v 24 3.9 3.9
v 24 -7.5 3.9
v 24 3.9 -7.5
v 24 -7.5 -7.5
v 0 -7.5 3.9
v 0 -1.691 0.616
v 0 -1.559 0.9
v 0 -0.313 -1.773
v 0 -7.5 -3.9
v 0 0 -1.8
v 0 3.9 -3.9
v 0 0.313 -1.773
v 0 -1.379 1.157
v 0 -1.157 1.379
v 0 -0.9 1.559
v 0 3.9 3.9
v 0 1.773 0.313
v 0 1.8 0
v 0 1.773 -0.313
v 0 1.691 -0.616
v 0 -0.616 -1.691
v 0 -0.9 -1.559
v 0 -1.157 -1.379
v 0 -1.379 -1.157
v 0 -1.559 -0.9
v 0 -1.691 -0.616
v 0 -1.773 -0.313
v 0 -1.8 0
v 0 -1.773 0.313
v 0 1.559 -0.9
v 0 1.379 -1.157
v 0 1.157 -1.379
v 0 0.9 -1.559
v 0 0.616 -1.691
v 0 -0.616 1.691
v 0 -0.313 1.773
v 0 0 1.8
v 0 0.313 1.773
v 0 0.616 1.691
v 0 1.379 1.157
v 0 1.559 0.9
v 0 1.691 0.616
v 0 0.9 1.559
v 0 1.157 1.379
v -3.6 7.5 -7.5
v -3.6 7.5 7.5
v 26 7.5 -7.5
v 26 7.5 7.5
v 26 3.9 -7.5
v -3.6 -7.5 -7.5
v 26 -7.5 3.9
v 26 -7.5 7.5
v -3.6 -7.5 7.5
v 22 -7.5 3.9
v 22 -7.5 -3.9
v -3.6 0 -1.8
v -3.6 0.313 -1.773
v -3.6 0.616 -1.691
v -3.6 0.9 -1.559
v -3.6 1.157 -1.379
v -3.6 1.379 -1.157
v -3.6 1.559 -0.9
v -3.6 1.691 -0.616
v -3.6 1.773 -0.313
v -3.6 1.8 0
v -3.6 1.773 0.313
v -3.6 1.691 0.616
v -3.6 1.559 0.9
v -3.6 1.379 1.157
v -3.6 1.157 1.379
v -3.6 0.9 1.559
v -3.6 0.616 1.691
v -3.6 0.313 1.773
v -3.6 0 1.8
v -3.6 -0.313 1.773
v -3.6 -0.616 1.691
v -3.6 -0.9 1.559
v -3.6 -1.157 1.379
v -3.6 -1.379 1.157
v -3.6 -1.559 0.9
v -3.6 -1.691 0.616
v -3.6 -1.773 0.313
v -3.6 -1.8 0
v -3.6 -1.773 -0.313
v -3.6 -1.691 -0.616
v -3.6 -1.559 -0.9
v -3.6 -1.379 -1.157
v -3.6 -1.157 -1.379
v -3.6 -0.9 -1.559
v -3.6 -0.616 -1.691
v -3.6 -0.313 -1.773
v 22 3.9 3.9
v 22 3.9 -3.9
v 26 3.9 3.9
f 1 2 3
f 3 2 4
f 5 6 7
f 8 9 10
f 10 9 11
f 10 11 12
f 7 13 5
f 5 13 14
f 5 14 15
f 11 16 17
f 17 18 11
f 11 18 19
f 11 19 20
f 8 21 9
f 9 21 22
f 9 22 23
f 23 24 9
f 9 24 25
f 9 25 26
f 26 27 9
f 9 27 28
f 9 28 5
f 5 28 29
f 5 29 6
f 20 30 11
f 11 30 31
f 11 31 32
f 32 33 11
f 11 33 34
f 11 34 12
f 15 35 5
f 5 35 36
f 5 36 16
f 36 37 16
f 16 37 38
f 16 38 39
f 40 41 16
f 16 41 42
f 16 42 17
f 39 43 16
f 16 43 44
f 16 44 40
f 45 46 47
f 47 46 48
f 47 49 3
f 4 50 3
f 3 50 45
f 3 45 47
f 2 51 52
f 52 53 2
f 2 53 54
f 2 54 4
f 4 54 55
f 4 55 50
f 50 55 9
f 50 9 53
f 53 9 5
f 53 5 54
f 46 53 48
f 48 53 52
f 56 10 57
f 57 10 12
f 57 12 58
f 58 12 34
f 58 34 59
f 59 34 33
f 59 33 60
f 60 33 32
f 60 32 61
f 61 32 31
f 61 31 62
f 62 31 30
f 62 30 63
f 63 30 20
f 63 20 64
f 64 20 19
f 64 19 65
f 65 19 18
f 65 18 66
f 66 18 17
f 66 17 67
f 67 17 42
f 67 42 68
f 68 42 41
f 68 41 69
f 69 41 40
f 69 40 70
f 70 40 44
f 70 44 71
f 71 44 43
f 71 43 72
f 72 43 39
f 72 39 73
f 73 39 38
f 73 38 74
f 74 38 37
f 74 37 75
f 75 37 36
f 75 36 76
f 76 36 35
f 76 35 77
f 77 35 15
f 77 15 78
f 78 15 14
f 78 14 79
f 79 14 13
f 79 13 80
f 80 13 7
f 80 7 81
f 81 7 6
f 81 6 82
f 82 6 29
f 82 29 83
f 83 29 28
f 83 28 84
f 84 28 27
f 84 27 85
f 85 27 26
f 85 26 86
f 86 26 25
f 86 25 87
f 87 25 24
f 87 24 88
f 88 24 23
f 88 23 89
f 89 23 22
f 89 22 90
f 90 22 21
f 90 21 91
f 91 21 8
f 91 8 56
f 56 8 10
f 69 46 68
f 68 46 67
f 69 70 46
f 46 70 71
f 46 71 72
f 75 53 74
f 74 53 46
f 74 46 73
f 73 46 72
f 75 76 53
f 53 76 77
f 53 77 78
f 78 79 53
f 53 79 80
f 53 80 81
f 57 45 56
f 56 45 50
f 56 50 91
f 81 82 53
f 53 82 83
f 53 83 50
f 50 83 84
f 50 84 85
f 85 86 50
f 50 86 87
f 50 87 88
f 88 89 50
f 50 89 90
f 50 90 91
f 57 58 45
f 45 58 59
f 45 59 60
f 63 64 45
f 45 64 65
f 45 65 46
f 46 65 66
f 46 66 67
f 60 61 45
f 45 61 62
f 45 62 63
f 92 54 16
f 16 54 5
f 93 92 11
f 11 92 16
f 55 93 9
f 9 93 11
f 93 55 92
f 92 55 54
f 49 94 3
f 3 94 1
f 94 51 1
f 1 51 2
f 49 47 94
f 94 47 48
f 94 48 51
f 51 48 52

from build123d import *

# Parameters (mm, degrees)
SKETCH1_W           = 15
SKETCH1_H           = 15
SKETCH1_R           = 1.8
BOSS_EXTRUDE1_DEPTH = 3.6
BOSS_EXTRUDE2_DEPTH = 22
SKETCH2_W           = 15
SKETCH2_H           = 15
BOSS_EXTRUDE3_DEPTH = 2
BOSS_EXTRUDE4_DEPTH = 4


with BuildPart() as part:
    # Sketch1 → Boss-Extrude1 (new body)
    with BuildSketch(Plane(origin=(0, 0, 0), x_dir=(0, 0, -1), z_dir=(1, 0, 0))):
        Rectangle(SKETCH1_W, SKETCH1_H)
        Circle(SKETCH1_R, mode=Mode.SUBTRACT)
    extrude(amount=-BOSS_EXTRUDE1_DEPTH)

    # Sketch1<3> → Boss-Extrude2 (add)
    with BuildSketch(Plane(origin=(0, 0, 0), x_dir=(0, 0, -1), z_dir=(1, 0, 0))):
        Polygon((-7.5, -7.5), (-3.9, -7.5), (-3.9, 3.9), (3.9, 3.9), (3.9, -7.5), (7.5, -7.5), (7.5, 7.5), (-7.5, 7.5), align=None)
    extrude(amount=BOSS_EXTRUDE2_DEPTH)

    # Sketch2 → Boss-Extrude3 (add)
    with BuildSketch(Plane(origin=(22, 0, 0), x_dir=(0, 0, -1), z_dir=(1, 0, 0))):
        Rectangle(SKETCH2_W, SKETCH2_H)
    extrude(amount=BOSS_EXTRUDE3_DEPTH)

    # Sketch2<3> → Boss-Extrude4 (add)
    with BuildSketch(Plane(origin=(22, 0, 0), x_dir=(0, 0, -1), z_dir=(1, 0, 0))):
        Polygon((-7.5, 7.5), (-7.5, -7.5), (-3.9, -7.5), (-3.9, 3.9), (7.5, 3.9), (7.5, 7.5), align=None)
    extrude(amount=BOSS_EXTRUDE4_DEPTH)


solid = part.part
